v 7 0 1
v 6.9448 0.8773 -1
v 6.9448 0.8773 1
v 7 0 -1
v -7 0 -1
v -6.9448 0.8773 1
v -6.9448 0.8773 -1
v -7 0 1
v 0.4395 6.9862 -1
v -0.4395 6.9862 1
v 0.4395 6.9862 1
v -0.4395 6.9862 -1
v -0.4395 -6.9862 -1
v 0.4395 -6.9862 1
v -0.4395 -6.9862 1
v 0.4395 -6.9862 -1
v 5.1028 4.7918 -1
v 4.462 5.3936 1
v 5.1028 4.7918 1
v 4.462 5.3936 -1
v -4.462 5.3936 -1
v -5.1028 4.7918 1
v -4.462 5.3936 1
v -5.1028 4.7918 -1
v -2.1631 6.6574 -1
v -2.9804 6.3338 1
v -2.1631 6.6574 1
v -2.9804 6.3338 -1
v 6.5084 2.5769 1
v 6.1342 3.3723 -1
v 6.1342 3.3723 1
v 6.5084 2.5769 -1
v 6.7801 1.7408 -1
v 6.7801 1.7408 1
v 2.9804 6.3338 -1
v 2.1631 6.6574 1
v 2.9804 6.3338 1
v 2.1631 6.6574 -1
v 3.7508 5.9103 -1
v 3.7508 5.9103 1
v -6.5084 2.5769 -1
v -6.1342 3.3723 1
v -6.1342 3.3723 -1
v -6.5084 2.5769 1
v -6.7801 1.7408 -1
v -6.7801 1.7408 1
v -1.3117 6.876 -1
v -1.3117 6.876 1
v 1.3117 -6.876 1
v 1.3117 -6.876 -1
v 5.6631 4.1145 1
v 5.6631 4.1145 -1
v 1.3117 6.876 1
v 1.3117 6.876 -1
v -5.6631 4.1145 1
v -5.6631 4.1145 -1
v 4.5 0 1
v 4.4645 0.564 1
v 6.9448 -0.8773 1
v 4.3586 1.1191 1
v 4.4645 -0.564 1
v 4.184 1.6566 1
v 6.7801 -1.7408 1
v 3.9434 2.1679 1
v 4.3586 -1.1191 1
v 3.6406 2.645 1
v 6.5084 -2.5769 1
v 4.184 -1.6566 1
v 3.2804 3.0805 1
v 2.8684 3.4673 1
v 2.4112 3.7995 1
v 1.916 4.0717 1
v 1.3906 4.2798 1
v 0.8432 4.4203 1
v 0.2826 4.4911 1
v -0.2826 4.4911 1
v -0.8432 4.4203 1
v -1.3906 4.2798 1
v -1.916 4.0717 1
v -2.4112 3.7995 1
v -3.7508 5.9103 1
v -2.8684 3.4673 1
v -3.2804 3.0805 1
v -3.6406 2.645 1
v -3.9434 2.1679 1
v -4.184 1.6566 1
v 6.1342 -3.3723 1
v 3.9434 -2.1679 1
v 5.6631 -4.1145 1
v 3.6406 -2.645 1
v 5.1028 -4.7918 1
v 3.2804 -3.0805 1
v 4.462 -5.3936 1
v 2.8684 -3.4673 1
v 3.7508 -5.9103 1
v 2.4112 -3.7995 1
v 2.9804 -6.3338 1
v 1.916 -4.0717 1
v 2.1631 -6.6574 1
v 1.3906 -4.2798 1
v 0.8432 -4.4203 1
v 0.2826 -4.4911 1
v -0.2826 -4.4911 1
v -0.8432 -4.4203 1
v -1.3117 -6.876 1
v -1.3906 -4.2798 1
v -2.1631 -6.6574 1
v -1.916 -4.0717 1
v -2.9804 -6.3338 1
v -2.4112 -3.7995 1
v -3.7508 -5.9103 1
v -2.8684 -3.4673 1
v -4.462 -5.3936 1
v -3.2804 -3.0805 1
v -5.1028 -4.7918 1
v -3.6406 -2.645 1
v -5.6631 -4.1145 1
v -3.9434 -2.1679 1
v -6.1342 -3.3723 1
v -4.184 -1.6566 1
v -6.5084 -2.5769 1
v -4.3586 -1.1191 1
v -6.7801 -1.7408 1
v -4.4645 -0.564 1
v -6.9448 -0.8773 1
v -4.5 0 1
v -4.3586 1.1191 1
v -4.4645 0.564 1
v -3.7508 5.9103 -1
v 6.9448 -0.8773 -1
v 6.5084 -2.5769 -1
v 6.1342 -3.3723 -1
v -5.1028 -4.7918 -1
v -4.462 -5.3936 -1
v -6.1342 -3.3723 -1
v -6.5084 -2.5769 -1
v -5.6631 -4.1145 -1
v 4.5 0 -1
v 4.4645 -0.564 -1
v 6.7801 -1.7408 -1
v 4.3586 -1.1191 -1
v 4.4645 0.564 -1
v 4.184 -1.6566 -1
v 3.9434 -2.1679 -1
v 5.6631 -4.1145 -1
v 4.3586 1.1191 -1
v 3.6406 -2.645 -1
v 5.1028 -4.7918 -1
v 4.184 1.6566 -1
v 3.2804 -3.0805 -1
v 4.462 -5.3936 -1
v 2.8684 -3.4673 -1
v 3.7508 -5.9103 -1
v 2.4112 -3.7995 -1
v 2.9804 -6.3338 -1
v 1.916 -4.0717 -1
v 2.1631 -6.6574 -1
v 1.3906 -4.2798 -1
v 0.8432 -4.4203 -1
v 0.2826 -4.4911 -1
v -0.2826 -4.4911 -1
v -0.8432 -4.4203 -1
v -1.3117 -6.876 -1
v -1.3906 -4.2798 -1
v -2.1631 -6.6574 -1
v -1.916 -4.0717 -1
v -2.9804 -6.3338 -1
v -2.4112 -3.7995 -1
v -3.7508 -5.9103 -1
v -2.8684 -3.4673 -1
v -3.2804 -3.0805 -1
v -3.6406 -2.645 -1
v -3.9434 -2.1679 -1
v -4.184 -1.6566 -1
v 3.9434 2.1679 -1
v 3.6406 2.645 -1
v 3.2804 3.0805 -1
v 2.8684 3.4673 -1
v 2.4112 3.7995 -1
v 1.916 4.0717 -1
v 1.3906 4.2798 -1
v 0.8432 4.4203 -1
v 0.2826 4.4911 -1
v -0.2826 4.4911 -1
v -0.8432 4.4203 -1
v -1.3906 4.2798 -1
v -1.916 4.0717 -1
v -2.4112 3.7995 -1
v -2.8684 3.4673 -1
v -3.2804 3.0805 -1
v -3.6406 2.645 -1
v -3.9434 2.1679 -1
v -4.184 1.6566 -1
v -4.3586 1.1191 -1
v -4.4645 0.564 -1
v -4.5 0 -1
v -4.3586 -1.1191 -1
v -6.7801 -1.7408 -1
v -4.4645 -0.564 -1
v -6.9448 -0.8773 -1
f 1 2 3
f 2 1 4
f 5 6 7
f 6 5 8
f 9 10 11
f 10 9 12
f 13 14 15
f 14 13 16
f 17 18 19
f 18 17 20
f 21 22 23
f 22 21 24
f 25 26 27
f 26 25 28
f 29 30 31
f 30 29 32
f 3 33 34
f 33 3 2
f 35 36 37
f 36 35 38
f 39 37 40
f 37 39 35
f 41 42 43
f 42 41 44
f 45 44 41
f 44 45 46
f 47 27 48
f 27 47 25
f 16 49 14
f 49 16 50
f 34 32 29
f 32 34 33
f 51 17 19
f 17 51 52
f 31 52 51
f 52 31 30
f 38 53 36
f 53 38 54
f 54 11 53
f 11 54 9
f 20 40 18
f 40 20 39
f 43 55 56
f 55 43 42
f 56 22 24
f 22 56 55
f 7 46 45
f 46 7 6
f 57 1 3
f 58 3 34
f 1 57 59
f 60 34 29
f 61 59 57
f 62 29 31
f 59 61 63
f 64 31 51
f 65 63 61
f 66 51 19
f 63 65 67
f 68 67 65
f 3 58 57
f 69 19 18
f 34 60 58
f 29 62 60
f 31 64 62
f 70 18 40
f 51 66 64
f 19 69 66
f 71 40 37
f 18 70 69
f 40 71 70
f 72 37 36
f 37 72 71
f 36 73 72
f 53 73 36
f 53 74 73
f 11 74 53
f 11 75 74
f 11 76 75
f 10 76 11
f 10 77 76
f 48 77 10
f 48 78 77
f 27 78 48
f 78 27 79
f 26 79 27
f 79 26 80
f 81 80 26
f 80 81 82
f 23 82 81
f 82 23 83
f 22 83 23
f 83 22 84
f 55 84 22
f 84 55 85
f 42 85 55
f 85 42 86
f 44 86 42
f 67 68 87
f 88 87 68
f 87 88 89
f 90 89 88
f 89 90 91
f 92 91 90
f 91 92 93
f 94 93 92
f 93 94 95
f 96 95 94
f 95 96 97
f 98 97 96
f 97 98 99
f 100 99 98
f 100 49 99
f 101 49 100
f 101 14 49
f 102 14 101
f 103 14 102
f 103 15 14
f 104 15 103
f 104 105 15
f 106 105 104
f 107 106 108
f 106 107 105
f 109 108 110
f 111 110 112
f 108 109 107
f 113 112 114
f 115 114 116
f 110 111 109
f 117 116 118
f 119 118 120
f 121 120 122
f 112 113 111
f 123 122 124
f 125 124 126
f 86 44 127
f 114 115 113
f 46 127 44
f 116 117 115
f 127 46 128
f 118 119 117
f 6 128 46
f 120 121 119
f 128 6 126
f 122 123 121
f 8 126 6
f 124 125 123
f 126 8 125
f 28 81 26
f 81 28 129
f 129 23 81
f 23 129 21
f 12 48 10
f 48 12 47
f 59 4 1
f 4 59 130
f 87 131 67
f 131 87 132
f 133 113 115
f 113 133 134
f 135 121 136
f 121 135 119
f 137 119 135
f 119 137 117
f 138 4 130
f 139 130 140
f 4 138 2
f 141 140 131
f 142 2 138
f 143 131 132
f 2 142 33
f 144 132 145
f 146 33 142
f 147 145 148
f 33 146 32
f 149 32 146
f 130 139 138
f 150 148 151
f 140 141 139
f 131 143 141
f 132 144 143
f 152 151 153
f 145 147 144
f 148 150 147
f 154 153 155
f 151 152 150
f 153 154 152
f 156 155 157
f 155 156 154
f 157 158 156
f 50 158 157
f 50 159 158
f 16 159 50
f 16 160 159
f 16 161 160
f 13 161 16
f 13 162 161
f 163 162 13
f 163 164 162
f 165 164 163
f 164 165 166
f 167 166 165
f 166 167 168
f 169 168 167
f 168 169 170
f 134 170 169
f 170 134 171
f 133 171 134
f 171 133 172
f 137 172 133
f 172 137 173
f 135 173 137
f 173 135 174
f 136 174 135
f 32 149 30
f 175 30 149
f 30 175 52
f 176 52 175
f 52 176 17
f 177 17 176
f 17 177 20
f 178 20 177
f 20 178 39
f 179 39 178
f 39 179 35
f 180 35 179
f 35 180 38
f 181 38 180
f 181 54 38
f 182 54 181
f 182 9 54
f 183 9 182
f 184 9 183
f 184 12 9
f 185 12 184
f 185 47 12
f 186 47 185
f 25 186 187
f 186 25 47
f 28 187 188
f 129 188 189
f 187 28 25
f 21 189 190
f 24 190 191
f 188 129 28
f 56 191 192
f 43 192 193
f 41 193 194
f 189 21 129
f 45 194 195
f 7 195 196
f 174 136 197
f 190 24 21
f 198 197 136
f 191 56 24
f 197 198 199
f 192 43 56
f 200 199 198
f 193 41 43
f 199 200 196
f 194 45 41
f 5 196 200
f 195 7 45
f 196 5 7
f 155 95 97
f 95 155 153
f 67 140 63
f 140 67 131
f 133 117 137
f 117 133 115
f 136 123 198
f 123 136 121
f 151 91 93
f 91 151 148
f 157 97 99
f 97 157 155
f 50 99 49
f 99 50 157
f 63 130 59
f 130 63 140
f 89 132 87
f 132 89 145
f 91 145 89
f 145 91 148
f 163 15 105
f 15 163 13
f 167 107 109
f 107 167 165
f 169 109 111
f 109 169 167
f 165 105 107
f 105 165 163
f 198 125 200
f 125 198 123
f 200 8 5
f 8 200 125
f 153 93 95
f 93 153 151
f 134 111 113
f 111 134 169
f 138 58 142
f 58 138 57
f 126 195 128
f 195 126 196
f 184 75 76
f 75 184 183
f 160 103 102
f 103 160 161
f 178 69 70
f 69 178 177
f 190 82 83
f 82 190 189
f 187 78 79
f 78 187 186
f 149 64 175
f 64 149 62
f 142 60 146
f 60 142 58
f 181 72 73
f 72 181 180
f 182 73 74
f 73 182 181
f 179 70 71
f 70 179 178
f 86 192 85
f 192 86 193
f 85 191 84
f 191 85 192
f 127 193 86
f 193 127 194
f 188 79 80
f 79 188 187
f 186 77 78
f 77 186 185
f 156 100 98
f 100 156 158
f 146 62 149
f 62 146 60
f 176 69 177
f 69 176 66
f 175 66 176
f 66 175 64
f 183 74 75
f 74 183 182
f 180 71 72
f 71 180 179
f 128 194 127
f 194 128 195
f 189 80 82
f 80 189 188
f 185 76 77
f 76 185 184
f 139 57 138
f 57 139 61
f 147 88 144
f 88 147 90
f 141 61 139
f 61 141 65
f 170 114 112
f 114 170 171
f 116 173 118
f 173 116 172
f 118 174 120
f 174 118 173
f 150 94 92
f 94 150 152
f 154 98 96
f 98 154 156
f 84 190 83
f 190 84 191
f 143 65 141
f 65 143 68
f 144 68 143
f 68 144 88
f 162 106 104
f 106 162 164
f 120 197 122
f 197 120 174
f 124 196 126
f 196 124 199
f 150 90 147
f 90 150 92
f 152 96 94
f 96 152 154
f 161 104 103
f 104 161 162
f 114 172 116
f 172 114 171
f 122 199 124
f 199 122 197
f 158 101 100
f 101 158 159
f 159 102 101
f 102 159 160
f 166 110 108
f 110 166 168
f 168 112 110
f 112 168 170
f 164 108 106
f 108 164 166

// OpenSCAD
$fn = 50;


difference() {
	union() {
		translate(v = [0, 0, -1.0000000000]) {
			cylinder(h = 2, r = 7.0000000000);
		}
	}
	union() {
		translate(v = [0, 0, -100.0000000000]) {
			cylinder(h = 200, r = 4.5000000000);
		}
	}
}
